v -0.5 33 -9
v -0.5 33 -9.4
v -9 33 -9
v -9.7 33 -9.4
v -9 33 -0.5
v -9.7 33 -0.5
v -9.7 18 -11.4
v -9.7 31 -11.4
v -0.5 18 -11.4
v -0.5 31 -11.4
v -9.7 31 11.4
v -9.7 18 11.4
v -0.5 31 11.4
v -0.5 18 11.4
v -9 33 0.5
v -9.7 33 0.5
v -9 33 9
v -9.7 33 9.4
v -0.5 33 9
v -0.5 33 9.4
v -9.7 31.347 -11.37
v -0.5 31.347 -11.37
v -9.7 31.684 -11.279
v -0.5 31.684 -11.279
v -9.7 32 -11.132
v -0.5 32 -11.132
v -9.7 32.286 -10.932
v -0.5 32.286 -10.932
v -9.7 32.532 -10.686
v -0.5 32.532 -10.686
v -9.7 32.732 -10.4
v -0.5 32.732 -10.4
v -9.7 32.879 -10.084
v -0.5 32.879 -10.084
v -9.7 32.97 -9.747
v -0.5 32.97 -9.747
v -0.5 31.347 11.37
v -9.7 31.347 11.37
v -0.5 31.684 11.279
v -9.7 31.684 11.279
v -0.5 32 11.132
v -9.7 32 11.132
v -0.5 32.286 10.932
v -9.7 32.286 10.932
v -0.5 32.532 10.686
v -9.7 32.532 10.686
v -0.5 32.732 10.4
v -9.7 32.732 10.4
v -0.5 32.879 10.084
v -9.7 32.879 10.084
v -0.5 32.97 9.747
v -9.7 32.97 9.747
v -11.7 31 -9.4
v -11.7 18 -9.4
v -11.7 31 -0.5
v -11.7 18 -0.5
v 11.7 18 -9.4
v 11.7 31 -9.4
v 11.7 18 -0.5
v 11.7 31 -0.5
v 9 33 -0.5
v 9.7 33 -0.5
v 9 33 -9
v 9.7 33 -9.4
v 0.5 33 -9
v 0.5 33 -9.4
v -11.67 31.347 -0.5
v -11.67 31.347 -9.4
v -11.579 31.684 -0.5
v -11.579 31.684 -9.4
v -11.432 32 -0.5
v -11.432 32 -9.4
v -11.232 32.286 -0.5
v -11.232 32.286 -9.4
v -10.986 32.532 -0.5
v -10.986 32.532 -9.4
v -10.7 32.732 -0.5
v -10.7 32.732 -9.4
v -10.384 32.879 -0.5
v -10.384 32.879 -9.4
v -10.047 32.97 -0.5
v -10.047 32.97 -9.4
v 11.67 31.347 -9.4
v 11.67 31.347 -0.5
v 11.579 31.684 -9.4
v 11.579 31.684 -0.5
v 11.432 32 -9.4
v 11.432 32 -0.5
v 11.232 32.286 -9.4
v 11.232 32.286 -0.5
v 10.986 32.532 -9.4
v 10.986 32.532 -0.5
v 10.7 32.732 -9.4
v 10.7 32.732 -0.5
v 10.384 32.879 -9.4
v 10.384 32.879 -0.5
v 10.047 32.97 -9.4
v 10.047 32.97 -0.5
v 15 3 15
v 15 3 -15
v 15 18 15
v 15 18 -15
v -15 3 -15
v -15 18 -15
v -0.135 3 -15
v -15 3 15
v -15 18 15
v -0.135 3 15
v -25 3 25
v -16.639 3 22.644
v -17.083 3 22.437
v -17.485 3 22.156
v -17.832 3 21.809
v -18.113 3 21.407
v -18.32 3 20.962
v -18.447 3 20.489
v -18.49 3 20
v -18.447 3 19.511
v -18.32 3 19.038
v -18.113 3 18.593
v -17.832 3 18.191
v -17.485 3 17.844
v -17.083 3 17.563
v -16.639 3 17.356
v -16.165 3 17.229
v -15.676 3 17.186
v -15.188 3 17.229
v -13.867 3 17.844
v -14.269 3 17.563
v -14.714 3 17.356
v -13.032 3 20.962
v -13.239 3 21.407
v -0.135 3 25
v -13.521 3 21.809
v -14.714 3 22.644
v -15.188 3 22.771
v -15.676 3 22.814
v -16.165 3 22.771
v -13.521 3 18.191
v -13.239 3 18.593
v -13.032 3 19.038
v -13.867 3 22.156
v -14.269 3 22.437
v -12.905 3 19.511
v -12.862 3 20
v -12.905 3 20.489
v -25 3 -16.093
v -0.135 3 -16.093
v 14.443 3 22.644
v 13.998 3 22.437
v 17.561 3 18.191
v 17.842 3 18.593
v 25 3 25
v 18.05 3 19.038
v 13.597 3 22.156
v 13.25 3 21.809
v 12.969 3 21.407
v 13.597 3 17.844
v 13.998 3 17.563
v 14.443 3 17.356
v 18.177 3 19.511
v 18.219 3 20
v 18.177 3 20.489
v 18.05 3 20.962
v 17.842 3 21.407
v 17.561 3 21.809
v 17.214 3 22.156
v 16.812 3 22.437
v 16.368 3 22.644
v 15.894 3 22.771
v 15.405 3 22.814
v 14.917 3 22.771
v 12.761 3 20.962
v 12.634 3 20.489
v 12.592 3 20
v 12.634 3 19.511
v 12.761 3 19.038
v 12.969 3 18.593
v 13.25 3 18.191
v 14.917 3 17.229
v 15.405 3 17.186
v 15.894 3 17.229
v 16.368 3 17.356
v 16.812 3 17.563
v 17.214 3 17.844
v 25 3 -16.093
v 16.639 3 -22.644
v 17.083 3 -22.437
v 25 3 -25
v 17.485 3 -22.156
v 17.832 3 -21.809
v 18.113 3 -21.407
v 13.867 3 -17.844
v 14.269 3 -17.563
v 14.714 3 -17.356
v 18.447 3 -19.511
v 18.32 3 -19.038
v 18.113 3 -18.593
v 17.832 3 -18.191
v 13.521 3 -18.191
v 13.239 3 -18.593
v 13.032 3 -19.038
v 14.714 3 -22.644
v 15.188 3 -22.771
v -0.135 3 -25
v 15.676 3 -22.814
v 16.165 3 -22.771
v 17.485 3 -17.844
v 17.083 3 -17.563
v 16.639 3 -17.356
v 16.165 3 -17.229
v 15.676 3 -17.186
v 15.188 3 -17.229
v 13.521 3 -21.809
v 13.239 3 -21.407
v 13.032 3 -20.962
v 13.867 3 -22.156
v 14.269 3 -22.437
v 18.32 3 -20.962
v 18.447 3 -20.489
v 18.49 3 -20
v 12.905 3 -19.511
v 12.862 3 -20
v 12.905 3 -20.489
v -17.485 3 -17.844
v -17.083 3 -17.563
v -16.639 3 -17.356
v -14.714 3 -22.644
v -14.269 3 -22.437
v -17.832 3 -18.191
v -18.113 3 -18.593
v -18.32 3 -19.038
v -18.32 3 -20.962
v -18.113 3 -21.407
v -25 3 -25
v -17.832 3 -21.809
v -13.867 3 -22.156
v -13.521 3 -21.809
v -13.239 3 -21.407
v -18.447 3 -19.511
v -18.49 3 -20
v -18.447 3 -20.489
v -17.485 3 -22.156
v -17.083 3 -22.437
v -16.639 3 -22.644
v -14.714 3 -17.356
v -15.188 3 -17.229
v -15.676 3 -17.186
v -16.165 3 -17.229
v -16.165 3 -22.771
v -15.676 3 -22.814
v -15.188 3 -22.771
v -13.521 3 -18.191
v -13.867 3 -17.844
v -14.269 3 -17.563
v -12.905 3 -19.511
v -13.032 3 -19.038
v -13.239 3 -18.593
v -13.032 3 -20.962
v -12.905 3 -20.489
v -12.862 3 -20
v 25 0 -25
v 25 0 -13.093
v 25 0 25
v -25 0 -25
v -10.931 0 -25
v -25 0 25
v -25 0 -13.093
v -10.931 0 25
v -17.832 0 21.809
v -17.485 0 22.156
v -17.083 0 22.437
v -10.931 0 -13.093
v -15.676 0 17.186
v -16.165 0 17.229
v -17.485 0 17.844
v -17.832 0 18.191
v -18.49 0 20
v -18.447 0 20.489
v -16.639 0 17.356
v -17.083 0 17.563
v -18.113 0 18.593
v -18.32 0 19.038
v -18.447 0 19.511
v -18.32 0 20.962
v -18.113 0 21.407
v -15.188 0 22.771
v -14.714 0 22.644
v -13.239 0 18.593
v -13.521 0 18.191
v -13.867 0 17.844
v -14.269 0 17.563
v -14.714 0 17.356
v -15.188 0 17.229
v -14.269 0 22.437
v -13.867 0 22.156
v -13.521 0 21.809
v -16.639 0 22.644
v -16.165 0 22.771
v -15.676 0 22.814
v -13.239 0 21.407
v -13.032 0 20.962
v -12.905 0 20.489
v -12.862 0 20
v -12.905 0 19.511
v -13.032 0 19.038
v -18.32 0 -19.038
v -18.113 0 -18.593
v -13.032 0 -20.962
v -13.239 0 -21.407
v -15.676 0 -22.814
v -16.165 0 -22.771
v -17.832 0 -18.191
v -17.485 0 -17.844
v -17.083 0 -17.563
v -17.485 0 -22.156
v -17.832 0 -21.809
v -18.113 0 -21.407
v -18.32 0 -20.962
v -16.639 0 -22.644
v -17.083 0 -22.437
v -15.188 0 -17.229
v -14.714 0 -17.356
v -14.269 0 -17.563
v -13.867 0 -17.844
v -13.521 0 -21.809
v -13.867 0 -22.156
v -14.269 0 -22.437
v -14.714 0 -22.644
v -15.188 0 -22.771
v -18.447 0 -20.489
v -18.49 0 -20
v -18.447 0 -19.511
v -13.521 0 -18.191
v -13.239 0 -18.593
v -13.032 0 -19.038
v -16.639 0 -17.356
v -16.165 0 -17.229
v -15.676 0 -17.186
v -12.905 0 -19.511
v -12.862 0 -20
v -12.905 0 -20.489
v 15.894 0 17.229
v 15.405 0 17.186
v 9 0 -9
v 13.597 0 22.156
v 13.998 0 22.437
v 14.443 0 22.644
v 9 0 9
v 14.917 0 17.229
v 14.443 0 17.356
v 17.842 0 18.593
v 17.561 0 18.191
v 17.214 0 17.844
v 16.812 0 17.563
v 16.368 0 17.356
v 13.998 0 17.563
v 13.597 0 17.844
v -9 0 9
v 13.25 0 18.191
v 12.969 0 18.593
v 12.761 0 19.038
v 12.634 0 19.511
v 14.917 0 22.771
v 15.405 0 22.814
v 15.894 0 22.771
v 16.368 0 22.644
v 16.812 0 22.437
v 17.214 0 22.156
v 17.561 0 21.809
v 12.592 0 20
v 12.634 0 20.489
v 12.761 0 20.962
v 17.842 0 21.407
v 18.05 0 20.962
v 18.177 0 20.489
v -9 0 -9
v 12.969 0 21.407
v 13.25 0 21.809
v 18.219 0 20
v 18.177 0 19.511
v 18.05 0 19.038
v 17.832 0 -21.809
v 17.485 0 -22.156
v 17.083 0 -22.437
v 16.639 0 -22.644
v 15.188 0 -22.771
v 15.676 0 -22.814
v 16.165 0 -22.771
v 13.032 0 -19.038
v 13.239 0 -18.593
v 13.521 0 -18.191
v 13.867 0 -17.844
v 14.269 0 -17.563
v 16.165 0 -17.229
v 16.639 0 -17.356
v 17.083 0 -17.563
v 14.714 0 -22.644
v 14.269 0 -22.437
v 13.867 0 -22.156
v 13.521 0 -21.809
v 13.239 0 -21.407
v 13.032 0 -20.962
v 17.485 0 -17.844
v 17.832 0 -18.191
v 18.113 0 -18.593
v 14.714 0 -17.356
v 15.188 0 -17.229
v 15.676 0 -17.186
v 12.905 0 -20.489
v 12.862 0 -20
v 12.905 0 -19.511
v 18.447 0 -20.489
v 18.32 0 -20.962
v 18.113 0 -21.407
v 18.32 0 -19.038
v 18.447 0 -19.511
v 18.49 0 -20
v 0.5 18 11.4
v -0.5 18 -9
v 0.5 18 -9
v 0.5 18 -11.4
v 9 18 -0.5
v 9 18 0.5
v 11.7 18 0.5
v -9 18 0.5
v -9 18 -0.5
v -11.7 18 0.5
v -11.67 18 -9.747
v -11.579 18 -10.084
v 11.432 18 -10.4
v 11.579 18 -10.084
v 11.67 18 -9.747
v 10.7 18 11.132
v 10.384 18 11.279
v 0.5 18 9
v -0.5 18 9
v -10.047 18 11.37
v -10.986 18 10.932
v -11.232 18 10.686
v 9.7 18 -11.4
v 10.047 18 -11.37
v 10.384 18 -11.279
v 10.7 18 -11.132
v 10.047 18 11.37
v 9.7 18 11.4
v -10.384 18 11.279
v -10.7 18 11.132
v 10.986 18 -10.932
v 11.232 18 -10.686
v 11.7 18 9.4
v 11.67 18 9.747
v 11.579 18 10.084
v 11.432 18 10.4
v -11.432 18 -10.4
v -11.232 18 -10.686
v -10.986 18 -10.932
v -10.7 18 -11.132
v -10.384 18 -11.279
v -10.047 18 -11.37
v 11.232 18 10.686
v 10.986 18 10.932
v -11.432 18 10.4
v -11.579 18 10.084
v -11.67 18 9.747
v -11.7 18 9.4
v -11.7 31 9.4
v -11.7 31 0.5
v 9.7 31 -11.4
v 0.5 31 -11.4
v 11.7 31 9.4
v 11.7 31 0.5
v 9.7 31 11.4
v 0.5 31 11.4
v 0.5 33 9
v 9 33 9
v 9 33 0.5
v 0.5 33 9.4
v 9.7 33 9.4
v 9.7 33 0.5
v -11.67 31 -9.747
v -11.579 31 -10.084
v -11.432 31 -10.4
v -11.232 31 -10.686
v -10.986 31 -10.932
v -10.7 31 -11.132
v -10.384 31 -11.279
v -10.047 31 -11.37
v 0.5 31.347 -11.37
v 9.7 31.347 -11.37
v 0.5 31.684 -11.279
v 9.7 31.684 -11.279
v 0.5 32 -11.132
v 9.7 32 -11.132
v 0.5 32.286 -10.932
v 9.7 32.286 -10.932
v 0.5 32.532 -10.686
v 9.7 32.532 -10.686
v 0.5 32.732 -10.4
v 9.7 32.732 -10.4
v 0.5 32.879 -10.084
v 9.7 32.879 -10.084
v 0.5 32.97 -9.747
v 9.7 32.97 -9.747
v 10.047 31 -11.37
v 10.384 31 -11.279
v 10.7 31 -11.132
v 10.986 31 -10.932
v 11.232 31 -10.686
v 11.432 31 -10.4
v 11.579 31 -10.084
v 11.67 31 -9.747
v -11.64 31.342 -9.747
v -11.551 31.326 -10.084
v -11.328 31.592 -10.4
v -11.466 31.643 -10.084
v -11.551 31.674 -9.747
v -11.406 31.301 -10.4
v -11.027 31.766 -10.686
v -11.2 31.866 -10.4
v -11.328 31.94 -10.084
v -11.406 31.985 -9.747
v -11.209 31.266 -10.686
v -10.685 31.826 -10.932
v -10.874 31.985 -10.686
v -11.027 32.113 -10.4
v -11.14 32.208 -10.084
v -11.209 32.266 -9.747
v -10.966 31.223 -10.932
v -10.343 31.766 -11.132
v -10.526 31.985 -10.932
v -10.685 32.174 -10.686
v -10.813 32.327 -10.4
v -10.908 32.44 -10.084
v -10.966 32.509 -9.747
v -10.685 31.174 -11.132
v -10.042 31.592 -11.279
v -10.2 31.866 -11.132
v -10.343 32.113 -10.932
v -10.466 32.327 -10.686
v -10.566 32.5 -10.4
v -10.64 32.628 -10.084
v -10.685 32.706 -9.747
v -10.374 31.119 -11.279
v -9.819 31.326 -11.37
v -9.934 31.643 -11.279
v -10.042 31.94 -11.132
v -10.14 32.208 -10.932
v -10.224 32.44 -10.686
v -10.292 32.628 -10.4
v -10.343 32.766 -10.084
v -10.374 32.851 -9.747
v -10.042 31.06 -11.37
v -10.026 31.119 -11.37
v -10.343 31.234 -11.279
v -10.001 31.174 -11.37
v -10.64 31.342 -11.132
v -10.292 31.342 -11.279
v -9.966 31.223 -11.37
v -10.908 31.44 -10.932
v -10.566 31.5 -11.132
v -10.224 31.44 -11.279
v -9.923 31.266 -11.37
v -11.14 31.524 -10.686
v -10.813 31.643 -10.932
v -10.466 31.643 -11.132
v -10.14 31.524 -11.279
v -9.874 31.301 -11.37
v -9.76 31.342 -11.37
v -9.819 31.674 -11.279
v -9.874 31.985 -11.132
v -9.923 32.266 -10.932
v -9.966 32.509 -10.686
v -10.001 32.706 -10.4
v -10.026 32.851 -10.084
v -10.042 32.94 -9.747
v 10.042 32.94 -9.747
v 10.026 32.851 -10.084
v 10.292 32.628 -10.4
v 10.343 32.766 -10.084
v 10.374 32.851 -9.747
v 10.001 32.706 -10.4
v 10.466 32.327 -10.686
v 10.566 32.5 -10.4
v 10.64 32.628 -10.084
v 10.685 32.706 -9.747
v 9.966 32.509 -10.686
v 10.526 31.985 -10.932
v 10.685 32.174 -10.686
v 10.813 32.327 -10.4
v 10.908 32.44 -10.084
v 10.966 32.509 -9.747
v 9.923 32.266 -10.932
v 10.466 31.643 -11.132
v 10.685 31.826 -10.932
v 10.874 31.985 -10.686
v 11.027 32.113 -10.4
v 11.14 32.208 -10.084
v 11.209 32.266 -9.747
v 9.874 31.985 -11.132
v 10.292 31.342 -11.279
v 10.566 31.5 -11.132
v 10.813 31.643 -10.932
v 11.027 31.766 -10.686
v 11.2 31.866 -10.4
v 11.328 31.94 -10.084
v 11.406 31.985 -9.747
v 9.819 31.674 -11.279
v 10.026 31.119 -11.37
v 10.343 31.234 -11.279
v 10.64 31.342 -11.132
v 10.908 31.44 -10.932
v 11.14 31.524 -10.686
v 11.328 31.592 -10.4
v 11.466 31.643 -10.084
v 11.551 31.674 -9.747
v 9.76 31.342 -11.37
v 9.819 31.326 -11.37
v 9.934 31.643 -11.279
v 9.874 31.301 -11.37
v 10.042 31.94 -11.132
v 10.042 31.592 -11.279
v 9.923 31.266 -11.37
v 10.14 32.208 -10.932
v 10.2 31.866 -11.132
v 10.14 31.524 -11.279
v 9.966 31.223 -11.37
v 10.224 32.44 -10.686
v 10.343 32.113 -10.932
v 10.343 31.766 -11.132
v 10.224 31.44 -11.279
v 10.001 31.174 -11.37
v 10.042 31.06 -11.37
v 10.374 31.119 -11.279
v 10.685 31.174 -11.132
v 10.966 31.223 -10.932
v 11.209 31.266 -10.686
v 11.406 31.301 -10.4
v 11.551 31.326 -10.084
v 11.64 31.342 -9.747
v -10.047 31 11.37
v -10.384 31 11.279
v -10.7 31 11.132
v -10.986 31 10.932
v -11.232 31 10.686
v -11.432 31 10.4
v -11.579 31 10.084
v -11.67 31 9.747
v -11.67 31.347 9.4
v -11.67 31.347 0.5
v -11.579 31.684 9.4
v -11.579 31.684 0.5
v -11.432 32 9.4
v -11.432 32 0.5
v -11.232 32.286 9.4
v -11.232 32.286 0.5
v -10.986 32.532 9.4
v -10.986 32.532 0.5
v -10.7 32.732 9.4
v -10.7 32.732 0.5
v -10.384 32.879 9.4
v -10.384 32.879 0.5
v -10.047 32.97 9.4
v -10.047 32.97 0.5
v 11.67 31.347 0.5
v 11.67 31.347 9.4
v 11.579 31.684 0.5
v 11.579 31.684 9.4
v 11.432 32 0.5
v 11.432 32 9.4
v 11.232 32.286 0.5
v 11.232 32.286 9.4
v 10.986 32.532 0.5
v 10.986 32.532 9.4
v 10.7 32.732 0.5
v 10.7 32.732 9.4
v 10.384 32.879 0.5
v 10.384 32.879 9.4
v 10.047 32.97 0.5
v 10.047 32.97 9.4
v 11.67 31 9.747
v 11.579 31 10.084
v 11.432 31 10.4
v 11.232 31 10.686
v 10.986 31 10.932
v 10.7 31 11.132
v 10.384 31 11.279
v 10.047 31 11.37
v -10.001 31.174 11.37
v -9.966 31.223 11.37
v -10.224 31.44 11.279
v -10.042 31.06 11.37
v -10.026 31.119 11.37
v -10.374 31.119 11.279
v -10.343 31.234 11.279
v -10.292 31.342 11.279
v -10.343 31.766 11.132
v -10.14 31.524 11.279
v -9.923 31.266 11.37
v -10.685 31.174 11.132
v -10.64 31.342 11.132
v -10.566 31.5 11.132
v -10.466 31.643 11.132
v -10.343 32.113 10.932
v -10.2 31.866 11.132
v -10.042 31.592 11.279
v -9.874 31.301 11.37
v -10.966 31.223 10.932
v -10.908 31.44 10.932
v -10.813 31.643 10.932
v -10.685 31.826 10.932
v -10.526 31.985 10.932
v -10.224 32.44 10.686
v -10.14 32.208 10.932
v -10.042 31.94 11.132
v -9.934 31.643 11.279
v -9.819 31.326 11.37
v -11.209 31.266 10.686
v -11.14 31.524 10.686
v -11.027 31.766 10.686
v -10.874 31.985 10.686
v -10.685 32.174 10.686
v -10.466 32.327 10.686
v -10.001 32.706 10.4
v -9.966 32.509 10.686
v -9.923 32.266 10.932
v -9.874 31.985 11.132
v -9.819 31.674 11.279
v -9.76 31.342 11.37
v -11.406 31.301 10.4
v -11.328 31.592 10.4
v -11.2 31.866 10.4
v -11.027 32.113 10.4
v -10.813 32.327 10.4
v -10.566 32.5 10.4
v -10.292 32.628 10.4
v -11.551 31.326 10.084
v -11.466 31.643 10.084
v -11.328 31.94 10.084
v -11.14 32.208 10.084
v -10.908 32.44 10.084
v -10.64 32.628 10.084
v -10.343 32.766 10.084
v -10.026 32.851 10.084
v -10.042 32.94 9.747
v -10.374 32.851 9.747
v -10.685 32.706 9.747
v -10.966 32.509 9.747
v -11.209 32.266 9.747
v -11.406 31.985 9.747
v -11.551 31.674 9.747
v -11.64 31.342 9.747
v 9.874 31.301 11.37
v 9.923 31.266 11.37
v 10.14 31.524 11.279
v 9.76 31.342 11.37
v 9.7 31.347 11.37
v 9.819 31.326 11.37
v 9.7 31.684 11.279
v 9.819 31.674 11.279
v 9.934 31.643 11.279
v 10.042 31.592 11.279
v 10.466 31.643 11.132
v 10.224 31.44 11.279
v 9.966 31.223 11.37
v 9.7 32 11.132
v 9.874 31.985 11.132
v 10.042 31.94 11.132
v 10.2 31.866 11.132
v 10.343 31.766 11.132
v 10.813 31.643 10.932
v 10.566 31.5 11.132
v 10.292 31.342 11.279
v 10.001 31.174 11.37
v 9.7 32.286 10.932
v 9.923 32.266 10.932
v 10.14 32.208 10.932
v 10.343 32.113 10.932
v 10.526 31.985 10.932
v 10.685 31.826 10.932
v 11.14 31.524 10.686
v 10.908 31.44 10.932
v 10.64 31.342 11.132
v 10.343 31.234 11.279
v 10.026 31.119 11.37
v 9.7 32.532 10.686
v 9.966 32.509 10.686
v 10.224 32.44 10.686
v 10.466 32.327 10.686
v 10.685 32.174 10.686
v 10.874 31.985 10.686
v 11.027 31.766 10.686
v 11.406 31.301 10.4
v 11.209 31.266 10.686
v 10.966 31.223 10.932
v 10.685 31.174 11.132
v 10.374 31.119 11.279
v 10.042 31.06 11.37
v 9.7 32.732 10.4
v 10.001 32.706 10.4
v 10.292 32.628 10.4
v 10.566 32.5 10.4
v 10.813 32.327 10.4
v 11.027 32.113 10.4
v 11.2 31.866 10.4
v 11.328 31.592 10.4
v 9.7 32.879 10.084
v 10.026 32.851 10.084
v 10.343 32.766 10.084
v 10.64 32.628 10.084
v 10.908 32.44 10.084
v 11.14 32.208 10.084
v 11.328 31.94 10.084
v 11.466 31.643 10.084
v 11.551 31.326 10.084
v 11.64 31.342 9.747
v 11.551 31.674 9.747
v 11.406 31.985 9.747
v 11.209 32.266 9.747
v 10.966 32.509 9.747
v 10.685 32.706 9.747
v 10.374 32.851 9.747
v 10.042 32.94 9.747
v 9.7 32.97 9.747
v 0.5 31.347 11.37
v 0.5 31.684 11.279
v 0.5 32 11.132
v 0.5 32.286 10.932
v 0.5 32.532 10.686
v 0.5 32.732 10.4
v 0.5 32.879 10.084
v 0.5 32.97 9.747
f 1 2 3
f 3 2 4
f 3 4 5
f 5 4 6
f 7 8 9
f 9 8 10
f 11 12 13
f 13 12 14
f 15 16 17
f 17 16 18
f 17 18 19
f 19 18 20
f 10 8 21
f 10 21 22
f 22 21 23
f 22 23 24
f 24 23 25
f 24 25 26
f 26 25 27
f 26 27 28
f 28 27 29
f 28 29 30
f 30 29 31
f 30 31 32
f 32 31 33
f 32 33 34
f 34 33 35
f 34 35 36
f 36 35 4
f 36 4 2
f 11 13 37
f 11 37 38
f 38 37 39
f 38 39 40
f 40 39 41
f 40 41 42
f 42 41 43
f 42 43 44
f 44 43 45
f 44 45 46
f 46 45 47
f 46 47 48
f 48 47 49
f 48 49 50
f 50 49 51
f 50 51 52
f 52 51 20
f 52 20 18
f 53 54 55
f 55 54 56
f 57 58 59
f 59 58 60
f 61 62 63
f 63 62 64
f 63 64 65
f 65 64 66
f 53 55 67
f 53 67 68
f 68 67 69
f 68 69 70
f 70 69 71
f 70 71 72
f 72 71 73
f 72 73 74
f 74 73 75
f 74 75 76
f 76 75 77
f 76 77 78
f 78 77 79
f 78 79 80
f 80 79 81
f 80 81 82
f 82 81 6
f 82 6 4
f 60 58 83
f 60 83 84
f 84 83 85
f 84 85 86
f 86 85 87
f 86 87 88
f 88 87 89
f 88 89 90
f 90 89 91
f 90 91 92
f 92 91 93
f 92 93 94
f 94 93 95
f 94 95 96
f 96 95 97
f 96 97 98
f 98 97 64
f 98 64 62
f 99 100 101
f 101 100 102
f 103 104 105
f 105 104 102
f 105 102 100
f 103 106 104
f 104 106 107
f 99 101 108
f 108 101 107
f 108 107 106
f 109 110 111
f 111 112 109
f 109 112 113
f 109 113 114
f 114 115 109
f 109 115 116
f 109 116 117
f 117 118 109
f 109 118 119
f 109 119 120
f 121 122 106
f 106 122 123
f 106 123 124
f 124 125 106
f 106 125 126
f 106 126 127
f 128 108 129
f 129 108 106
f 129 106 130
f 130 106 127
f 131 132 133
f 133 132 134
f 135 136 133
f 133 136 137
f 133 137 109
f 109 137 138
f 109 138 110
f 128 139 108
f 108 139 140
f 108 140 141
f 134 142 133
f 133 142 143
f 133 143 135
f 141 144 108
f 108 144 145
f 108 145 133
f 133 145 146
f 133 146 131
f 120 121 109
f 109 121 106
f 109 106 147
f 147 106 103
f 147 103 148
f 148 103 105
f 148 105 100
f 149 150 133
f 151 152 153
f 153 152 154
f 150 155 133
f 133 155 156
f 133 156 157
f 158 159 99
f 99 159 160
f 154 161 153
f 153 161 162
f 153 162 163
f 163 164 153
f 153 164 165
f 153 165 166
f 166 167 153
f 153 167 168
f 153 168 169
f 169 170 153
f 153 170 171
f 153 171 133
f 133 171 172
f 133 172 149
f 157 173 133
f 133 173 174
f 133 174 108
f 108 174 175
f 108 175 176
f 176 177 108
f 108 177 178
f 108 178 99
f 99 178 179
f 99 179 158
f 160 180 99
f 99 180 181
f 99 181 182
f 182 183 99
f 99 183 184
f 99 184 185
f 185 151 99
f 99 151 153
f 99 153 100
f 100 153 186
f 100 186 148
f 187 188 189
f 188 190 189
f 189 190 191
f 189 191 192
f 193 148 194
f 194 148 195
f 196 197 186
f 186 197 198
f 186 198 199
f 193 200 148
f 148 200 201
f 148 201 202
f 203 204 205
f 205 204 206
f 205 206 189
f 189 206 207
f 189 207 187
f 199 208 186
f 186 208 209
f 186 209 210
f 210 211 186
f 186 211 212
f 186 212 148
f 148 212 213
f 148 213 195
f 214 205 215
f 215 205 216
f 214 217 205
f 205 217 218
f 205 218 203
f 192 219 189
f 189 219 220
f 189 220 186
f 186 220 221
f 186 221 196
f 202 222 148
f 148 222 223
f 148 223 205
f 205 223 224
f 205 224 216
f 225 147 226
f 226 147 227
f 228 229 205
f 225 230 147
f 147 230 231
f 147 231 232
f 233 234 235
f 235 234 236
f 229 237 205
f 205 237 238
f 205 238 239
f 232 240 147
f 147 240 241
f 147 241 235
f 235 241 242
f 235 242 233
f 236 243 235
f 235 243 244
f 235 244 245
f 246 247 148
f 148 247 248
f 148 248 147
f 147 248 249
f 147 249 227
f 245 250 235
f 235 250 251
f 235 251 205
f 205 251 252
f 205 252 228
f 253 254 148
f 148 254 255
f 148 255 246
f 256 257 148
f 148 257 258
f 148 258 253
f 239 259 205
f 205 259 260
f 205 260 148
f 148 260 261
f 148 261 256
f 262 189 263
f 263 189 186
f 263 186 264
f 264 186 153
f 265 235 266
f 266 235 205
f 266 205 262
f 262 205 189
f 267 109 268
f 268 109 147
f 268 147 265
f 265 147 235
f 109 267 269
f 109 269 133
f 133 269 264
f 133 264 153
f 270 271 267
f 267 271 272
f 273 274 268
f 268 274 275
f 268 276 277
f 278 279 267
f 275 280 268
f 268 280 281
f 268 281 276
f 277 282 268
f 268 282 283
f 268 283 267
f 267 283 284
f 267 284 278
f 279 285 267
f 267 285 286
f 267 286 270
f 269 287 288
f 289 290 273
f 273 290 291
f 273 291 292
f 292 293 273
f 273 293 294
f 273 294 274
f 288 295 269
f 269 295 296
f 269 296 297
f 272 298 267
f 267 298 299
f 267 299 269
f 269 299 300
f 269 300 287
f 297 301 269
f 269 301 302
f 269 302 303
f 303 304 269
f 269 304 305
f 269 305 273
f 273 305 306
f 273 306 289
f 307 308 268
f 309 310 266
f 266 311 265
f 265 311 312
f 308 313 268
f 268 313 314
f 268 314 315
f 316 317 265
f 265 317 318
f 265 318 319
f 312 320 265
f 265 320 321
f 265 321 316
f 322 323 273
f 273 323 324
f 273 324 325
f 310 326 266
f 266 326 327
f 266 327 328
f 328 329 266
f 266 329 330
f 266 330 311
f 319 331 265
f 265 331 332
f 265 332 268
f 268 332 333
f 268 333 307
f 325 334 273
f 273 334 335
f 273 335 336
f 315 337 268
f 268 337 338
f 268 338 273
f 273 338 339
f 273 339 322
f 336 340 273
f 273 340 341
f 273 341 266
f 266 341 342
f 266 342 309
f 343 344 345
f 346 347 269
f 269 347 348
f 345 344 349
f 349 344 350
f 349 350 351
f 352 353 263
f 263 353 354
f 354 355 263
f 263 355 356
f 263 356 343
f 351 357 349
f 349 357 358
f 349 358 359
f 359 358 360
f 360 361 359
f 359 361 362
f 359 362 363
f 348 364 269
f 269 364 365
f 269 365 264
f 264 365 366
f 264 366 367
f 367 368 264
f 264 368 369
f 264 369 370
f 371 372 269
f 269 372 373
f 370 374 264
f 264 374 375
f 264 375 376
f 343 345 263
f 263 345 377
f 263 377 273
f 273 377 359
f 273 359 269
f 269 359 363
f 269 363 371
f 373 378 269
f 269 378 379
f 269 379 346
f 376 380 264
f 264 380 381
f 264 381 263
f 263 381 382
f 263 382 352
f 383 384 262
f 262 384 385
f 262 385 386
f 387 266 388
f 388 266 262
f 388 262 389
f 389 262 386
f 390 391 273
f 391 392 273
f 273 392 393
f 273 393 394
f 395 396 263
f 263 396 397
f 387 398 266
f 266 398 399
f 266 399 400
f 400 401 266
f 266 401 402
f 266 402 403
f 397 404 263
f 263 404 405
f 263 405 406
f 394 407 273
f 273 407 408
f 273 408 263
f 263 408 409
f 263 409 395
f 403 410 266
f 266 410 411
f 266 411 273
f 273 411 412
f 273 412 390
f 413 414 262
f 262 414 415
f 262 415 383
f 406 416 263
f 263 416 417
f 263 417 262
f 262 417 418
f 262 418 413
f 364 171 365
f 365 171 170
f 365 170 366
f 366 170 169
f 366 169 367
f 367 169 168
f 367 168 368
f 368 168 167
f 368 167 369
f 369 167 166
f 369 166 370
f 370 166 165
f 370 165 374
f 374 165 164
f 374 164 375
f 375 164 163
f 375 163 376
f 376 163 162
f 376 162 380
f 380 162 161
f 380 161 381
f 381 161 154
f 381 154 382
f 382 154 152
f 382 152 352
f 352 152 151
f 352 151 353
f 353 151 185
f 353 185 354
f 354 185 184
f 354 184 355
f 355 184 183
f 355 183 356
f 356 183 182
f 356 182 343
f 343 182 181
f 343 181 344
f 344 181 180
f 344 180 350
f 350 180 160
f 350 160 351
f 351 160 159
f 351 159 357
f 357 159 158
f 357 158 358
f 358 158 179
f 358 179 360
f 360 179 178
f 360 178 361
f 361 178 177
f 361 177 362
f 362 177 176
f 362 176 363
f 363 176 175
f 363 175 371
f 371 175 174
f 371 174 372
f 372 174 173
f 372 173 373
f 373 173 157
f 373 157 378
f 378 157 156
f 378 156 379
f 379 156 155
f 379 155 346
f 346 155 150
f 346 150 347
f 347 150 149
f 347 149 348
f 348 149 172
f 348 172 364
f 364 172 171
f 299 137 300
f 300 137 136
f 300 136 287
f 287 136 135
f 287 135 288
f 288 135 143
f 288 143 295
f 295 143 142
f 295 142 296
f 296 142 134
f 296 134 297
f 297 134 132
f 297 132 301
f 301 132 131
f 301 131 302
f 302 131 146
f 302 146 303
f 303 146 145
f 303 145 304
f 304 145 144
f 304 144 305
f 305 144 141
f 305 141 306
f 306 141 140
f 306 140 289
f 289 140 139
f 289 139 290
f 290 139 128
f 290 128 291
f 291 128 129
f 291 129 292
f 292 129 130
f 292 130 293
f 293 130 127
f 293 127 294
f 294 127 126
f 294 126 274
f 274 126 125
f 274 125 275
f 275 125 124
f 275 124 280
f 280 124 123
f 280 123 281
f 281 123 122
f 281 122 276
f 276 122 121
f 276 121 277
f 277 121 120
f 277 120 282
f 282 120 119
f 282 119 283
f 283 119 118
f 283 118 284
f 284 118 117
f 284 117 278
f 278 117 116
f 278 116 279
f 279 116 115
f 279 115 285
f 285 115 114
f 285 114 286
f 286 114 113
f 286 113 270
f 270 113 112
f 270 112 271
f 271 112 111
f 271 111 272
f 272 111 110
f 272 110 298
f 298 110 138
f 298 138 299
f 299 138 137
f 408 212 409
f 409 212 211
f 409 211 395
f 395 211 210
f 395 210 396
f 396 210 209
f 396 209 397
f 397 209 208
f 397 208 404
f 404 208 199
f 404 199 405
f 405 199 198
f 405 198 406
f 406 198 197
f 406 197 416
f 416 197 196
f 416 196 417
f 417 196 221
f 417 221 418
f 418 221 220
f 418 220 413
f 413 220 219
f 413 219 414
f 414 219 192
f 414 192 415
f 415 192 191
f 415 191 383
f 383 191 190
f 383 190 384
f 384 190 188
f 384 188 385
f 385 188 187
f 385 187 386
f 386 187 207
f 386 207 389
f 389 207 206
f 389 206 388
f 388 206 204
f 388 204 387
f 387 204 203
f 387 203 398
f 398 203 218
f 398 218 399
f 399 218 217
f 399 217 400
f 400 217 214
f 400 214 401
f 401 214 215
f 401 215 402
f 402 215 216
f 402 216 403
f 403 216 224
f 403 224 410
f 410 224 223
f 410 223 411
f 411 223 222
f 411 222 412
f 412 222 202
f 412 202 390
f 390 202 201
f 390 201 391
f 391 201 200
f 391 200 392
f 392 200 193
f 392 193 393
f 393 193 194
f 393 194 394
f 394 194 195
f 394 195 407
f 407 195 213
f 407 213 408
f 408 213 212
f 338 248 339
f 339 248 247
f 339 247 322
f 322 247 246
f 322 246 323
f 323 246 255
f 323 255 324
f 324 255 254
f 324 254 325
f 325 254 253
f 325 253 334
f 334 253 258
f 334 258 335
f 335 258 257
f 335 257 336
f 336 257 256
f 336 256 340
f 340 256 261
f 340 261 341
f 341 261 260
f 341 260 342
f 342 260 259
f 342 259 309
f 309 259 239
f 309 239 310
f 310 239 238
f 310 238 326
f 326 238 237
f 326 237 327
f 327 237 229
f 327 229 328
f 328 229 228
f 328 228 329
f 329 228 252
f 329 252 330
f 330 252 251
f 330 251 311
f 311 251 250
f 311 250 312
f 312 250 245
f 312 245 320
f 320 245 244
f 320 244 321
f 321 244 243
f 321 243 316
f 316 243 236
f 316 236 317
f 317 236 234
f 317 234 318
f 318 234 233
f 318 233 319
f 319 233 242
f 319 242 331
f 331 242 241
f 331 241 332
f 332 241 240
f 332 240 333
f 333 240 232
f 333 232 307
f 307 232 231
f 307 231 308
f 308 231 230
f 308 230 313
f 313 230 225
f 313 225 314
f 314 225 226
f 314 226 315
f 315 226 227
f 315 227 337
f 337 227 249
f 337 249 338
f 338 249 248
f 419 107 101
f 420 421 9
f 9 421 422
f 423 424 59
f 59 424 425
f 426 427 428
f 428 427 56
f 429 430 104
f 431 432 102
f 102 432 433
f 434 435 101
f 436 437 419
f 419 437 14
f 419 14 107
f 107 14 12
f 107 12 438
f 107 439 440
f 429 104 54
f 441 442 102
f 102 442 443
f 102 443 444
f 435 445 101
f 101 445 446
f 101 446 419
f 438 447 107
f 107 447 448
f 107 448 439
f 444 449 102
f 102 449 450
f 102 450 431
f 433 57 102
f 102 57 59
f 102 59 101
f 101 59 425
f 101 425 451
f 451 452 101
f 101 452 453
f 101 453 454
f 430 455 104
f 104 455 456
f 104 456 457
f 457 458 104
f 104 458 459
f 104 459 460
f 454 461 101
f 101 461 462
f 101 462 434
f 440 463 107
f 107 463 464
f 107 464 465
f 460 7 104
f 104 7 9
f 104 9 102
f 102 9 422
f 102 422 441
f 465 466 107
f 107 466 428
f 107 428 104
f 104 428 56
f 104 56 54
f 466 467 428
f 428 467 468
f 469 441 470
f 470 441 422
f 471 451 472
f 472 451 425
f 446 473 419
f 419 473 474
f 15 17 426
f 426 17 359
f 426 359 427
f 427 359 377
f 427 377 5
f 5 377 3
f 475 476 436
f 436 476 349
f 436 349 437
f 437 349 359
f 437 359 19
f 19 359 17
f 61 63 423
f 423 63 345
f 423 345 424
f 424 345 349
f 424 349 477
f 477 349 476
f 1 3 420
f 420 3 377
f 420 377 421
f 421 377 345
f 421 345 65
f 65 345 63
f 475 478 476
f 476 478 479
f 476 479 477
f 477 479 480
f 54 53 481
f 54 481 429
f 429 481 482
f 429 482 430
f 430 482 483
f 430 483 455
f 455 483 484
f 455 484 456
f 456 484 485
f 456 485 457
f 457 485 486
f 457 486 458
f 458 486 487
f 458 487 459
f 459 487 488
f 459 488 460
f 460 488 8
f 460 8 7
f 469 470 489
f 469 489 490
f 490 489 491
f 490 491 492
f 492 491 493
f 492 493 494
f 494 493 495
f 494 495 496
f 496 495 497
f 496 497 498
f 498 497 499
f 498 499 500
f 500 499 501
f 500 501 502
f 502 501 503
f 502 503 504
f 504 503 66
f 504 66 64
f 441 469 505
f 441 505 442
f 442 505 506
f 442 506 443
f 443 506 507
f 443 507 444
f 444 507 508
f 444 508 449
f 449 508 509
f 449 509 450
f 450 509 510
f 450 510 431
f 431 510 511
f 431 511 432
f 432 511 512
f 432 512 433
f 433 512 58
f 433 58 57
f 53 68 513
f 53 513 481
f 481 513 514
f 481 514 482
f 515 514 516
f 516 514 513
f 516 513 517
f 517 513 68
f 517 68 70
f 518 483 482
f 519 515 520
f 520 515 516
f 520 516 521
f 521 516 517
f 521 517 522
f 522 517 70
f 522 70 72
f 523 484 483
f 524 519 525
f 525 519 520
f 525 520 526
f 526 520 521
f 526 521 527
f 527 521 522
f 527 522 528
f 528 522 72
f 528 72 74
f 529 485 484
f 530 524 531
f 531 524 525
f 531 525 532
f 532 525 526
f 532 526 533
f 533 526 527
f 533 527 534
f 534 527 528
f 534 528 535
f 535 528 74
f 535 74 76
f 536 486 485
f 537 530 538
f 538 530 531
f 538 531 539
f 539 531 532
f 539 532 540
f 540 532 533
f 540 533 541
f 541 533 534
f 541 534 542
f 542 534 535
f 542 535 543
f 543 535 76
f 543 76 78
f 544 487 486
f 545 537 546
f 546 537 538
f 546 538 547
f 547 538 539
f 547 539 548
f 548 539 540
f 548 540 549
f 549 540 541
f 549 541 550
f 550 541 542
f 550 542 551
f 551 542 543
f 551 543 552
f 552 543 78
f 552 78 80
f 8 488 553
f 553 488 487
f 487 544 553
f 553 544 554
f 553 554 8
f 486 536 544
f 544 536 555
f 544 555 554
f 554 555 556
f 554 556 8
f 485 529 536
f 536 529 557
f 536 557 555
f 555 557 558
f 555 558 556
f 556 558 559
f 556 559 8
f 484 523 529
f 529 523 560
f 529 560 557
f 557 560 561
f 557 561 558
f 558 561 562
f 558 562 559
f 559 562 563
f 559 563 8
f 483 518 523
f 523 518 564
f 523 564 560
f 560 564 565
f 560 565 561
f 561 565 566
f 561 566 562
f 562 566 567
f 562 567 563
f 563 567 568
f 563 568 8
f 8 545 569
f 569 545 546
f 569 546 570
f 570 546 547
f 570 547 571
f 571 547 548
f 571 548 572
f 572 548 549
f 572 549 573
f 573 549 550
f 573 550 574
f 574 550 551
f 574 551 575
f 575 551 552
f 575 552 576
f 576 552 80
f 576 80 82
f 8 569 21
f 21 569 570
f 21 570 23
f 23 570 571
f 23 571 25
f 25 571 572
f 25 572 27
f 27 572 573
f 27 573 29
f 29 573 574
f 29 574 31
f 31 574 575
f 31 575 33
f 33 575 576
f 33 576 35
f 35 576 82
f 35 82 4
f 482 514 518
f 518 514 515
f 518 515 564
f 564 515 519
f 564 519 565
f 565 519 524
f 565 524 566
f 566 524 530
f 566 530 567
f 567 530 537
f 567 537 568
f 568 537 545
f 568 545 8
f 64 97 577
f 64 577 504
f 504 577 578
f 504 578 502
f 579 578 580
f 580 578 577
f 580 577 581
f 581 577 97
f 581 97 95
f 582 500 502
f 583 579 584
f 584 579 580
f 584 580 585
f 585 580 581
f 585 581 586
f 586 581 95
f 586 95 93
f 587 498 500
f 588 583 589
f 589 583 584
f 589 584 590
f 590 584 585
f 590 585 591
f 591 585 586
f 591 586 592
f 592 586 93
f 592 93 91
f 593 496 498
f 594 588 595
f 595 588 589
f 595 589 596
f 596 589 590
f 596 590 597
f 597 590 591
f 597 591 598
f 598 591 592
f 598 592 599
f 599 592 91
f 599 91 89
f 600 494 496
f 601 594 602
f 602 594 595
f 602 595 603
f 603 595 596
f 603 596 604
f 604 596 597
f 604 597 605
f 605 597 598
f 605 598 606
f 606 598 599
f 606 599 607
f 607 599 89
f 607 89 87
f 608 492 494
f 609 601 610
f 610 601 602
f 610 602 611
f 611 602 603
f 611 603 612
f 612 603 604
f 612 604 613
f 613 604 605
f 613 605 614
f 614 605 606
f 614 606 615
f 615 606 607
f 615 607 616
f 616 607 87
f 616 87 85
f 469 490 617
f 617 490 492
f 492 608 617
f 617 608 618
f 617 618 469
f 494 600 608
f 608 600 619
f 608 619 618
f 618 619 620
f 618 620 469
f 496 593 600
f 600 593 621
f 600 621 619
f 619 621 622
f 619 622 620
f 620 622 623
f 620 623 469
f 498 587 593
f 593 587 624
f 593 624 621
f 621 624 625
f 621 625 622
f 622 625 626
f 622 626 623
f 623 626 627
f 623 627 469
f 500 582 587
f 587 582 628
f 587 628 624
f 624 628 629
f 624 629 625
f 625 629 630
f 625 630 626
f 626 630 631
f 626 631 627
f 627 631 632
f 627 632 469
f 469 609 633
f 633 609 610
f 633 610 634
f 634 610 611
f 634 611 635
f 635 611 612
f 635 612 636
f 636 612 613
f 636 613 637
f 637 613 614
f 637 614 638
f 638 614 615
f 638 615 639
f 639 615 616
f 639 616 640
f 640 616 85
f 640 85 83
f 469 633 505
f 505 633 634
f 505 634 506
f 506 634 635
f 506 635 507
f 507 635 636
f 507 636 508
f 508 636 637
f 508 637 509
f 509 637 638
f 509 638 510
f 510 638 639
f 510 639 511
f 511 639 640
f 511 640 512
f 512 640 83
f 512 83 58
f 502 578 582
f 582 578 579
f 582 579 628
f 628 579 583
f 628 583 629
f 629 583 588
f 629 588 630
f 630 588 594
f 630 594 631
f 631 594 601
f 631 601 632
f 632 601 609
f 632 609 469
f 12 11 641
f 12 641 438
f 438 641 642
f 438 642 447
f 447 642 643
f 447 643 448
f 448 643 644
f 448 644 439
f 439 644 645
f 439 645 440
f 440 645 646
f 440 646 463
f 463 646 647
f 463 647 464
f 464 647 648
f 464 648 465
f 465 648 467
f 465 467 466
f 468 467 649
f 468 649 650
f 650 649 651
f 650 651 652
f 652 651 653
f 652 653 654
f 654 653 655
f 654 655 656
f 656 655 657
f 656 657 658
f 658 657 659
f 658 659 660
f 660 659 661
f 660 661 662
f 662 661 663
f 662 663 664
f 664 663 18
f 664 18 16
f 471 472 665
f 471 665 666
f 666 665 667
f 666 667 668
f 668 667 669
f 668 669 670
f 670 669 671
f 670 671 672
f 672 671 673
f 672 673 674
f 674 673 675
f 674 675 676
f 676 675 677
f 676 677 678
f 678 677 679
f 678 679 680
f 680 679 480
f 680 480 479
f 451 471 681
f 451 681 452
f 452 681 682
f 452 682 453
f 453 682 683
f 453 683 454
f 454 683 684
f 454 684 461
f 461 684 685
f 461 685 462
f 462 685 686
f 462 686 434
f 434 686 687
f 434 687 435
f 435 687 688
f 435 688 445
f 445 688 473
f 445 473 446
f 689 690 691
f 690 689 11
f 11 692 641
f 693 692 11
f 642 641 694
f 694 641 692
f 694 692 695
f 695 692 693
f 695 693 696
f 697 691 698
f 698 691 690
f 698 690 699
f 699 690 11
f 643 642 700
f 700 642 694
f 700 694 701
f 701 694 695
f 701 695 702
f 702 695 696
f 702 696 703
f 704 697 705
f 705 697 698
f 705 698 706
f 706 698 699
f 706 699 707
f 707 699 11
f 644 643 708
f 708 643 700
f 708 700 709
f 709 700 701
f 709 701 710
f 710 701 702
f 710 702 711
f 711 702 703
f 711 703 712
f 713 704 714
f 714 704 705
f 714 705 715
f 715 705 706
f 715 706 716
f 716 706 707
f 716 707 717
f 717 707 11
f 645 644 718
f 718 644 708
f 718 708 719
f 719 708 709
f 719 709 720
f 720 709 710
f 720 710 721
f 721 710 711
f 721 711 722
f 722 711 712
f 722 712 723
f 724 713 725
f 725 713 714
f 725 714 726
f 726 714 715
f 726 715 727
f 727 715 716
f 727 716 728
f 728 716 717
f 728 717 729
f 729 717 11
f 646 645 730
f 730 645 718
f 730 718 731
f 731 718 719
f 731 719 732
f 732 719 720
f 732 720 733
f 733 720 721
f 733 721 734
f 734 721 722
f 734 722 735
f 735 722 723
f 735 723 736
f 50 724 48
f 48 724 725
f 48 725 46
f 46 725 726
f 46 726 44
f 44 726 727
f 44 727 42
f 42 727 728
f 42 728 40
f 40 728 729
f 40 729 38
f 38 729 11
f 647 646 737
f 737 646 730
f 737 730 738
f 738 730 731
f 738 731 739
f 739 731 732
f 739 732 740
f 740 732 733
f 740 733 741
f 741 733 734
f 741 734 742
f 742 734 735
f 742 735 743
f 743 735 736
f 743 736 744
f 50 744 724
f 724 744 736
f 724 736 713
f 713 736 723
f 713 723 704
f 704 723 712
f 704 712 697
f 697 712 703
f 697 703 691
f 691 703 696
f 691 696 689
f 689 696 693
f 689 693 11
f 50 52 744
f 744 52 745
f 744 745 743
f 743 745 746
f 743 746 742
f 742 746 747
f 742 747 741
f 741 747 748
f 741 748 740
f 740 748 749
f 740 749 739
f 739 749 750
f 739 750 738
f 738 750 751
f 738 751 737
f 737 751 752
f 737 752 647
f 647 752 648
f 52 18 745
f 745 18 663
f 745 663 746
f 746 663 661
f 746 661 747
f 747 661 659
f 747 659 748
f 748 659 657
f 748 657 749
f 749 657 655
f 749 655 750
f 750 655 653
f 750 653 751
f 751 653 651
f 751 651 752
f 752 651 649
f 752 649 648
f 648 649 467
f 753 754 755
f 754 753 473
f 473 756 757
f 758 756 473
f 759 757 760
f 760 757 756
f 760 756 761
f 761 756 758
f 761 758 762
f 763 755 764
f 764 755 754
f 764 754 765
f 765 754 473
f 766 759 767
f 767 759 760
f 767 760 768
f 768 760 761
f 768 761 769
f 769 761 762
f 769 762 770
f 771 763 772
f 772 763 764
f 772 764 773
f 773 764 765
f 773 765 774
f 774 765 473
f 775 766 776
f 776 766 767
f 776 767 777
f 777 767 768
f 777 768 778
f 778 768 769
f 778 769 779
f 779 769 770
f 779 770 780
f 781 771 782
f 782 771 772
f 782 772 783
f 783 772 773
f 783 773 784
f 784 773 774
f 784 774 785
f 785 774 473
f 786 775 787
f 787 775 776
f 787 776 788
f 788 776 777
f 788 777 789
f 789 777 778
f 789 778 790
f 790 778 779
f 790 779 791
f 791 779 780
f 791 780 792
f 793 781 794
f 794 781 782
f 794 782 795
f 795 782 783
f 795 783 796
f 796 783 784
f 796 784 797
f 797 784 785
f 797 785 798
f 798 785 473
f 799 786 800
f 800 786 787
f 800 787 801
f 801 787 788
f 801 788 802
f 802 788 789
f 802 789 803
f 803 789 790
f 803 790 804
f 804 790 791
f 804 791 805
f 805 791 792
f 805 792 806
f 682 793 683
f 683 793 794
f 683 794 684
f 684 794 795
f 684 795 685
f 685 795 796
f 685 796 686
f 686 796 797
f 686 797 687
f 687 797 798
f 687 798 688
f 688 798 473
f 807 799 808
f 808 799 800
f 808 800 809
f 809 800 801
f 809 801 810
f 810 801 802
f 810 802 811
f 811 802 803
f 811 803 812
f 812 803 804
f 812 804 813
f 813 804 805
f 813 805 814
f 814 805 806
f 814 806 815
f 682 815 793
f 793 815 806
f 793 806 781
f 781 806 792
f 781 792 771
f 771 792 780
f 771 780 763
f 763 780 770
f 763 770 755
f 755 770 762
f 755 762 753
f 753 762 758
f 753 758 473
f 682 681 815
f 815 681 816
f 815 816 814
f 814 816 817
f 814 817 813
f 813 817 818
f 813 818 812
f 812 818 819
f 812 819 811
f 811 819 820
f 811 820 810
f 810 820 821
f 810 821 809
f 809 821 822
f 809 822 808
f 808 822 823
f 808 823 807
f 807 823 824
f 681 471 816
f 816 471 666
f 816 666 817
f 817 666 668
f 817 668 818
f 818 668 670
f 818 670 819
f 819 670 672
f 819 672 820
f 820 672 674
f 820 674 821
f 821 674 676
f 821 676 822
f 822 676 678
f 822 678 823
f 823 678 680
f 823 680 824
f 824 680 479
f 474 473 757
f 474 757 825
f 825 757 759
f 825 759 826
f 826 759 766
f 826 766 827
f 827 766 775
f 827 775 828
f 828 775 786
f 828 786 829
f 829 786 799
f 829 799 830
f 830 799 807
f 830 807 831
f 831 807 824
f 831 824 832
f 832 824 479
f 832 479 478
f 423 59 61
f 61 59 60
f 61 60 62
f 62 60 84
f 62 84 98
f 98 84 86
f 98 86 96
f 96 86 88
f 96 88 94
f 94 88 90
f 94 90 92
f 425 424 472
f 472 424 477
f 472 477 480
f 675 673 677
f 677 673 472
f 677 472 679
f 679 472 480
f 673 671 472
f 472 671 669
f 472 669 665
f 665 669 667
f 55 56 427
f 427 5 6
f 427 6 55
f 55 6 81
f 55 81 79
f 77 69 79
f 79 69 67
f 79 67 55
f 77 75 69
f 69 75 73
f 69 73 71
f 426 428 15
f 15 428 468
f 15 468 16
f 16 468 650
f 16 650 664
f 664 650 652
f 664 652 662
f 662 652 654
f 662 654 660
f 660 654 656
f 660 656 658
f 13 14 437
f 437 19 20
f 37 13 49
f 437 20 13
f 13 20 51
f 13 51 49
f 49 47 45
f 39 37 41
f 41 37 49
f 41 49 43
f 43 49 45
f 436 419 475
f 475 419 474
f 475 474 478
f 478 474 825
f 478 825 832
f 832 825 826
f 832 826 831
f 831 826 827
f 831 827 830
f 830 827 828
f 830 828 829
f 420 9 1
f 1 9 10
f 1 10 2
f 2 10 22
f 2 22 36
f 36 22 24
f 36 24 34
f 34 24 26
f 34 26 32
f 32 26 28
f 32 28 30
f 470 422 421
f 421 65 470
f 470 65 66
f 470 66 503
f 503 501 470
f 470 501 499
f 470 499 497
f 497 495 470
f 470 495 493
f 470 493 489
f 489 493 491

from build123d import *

# Parameters (mm, degrees)
CROQUIS1_W              = 50
CROQUIS1_H              = 50
SALIENTE_EXTRUIR1_DEPTH = 3
CROQUIS2_W              = 30
CROQUIS2_H              = 30
CROQUIS2_W_2            = 18
CROQUIS2_H_2            = 18
SALIENTE_EXTRUIR2_DEPTH = 30
CROQUIS3_R              = 2.813865728
CORTAR_EXTRUIR1_DEPTH   = 10
CROQUIS4_W              = 30
CROQUIS4_H              = 30
CROQUIS4_W_2            = 23.4
CROQUIS4_H_2            = 22.8
CORTAR_EXTRUIR2_DEPTH   = 15
REDONDEO1_R             = 2
CROQUIS5_W              = 18
CROQUIS5_H              = 18
CORTAR_EXTRUIR3_DEPTH   = 16
CROQUIS6_W              = 1
CROQUIS6_H              = 15.294109798
CORTAR_EXTRUIR4_DEPTH   = 37.7
CROQUIS7_W              = 1
CROQUIS7_H              = 15.234542974
CORTAR_EXTRUIR5_DEPTH   = 37.4


with BuildPart() as part:
    # Croquis1 → Saliente-Extruir1 (new body)
    with BuildSketch(Plane(origin=(0, 0, 0), x_dir=(1, 0, 0), z_dir=(0, 1, 0))):
        Rectangle(CROQUIS1_W, CROQUIS1_H)
    extrude(amount=SALIENTE_EXTRUIR1_DEPTH)

    # Croquis2 → Saliente-Extruir2 (add)
    with BuildSketch(Plane(origin=(0, 3, 0), x_dir=(1, 0, 0), z_dir=(0, 1, 0))):
        Rectangle(CROQUIS2_W, CROQUIS2_H)
        Rectangle(CROQUIS2_W_2, CROQUIS2_H_2, mode=Mode.SUBTRACT)
    extrude(amount=SALIENTE_EXTRUIR2_DEPTH)

    # Croquis3 → Cortar-Extruir1 (cut)
    with BuildSketch(Plane(origin=(0, 3, 0), x_dir=(1, 0, 0), z_dir=(0, 1, 0))):
        with Locations((15.405421421, -20)):
            Circle(CROQUIS3_R)
        with Locations((-15.676153635, -20)):
            Circle(CROQUIS3_R)
        with Locations((15.676153635, 20)):
            Circle(CROQUIS3_R)
        with Locations((-15.676153635, 20)):
            Circle(CROQUIS3_R)
    extrude(amount=-CORTAR_EXTRUIR1_DEPTH, mode=Mode.SUBTRACT)

    # Croquis4 → Cortar-Extruir2 (cut)
    with BuildSketch(Plane(origin=(0, 33, 0), x_dir=(1, 0, 0), z_dir=(0, 1, 0))):
        Rectangle(CROQUIS4_W, CROQUIS4_H)
        Rectangle(CROQUIS4_W_2, CROQUIS4_H_2, mode=Mode.SUBTRACT)
    extrude(amount=-CORTAR_EXTRUIR2_DEPTH, mode=Mode.SUBTRACT)

    # Redondeo1
    redondeo1_edges = [part.edges().sort_by_distance(p)[0] for p in [
        (-11.7, 33, 0),
        (-11.7, 25.5, -11.4),
        (0, 33, -11.4),
        (11.7, 25.5, -11.4),
        (11.7, 33, 0),
        (11.7, 25.5, 11.4),
        (0, 33, 11.4),
        (-11.7, 25.5, 11.4),
    ]]
    fillet(redondeo1_edges, radius=REDONDEO1_R)

    # Croquis5 → Cortar-Extruir3 (cut)
    with BuildSketch(Plane.XZ):
        Rectangle(CROQUIS5_W, CROQUIS5_H)
    extrude(amount=-CORTAR_EXTRUIR3_DEPTH, mode=Mode.SUBTRACT)

    # Croquis6 → Cortar-Extruir4 (cut, through all)
    with BuildSketch(Plane.ZY.offset(11.7)):
        with Locations((0, 25.647054899)):
            Rectangle(CROQUIS6_W, CROQUIS6_H)
    extrude(amount=-CORTAR_EXTRUIR4_DEPTH, mode=Mode.SUBTRACT)

    # Croquis7 → Cortar-Extruir5 (cut, through all)
    with BuildSketch(Plane.XY.offset(11.4)):
        with Locations((0, 25.617271487)):
            Rectangle(CROQUIS7_W, CROQUIS7_H)
    extrude(amount=-CORTAR_EXTRUIR5_DEPTH, mode=Mode.SUBTRACT)


solid = part.part
